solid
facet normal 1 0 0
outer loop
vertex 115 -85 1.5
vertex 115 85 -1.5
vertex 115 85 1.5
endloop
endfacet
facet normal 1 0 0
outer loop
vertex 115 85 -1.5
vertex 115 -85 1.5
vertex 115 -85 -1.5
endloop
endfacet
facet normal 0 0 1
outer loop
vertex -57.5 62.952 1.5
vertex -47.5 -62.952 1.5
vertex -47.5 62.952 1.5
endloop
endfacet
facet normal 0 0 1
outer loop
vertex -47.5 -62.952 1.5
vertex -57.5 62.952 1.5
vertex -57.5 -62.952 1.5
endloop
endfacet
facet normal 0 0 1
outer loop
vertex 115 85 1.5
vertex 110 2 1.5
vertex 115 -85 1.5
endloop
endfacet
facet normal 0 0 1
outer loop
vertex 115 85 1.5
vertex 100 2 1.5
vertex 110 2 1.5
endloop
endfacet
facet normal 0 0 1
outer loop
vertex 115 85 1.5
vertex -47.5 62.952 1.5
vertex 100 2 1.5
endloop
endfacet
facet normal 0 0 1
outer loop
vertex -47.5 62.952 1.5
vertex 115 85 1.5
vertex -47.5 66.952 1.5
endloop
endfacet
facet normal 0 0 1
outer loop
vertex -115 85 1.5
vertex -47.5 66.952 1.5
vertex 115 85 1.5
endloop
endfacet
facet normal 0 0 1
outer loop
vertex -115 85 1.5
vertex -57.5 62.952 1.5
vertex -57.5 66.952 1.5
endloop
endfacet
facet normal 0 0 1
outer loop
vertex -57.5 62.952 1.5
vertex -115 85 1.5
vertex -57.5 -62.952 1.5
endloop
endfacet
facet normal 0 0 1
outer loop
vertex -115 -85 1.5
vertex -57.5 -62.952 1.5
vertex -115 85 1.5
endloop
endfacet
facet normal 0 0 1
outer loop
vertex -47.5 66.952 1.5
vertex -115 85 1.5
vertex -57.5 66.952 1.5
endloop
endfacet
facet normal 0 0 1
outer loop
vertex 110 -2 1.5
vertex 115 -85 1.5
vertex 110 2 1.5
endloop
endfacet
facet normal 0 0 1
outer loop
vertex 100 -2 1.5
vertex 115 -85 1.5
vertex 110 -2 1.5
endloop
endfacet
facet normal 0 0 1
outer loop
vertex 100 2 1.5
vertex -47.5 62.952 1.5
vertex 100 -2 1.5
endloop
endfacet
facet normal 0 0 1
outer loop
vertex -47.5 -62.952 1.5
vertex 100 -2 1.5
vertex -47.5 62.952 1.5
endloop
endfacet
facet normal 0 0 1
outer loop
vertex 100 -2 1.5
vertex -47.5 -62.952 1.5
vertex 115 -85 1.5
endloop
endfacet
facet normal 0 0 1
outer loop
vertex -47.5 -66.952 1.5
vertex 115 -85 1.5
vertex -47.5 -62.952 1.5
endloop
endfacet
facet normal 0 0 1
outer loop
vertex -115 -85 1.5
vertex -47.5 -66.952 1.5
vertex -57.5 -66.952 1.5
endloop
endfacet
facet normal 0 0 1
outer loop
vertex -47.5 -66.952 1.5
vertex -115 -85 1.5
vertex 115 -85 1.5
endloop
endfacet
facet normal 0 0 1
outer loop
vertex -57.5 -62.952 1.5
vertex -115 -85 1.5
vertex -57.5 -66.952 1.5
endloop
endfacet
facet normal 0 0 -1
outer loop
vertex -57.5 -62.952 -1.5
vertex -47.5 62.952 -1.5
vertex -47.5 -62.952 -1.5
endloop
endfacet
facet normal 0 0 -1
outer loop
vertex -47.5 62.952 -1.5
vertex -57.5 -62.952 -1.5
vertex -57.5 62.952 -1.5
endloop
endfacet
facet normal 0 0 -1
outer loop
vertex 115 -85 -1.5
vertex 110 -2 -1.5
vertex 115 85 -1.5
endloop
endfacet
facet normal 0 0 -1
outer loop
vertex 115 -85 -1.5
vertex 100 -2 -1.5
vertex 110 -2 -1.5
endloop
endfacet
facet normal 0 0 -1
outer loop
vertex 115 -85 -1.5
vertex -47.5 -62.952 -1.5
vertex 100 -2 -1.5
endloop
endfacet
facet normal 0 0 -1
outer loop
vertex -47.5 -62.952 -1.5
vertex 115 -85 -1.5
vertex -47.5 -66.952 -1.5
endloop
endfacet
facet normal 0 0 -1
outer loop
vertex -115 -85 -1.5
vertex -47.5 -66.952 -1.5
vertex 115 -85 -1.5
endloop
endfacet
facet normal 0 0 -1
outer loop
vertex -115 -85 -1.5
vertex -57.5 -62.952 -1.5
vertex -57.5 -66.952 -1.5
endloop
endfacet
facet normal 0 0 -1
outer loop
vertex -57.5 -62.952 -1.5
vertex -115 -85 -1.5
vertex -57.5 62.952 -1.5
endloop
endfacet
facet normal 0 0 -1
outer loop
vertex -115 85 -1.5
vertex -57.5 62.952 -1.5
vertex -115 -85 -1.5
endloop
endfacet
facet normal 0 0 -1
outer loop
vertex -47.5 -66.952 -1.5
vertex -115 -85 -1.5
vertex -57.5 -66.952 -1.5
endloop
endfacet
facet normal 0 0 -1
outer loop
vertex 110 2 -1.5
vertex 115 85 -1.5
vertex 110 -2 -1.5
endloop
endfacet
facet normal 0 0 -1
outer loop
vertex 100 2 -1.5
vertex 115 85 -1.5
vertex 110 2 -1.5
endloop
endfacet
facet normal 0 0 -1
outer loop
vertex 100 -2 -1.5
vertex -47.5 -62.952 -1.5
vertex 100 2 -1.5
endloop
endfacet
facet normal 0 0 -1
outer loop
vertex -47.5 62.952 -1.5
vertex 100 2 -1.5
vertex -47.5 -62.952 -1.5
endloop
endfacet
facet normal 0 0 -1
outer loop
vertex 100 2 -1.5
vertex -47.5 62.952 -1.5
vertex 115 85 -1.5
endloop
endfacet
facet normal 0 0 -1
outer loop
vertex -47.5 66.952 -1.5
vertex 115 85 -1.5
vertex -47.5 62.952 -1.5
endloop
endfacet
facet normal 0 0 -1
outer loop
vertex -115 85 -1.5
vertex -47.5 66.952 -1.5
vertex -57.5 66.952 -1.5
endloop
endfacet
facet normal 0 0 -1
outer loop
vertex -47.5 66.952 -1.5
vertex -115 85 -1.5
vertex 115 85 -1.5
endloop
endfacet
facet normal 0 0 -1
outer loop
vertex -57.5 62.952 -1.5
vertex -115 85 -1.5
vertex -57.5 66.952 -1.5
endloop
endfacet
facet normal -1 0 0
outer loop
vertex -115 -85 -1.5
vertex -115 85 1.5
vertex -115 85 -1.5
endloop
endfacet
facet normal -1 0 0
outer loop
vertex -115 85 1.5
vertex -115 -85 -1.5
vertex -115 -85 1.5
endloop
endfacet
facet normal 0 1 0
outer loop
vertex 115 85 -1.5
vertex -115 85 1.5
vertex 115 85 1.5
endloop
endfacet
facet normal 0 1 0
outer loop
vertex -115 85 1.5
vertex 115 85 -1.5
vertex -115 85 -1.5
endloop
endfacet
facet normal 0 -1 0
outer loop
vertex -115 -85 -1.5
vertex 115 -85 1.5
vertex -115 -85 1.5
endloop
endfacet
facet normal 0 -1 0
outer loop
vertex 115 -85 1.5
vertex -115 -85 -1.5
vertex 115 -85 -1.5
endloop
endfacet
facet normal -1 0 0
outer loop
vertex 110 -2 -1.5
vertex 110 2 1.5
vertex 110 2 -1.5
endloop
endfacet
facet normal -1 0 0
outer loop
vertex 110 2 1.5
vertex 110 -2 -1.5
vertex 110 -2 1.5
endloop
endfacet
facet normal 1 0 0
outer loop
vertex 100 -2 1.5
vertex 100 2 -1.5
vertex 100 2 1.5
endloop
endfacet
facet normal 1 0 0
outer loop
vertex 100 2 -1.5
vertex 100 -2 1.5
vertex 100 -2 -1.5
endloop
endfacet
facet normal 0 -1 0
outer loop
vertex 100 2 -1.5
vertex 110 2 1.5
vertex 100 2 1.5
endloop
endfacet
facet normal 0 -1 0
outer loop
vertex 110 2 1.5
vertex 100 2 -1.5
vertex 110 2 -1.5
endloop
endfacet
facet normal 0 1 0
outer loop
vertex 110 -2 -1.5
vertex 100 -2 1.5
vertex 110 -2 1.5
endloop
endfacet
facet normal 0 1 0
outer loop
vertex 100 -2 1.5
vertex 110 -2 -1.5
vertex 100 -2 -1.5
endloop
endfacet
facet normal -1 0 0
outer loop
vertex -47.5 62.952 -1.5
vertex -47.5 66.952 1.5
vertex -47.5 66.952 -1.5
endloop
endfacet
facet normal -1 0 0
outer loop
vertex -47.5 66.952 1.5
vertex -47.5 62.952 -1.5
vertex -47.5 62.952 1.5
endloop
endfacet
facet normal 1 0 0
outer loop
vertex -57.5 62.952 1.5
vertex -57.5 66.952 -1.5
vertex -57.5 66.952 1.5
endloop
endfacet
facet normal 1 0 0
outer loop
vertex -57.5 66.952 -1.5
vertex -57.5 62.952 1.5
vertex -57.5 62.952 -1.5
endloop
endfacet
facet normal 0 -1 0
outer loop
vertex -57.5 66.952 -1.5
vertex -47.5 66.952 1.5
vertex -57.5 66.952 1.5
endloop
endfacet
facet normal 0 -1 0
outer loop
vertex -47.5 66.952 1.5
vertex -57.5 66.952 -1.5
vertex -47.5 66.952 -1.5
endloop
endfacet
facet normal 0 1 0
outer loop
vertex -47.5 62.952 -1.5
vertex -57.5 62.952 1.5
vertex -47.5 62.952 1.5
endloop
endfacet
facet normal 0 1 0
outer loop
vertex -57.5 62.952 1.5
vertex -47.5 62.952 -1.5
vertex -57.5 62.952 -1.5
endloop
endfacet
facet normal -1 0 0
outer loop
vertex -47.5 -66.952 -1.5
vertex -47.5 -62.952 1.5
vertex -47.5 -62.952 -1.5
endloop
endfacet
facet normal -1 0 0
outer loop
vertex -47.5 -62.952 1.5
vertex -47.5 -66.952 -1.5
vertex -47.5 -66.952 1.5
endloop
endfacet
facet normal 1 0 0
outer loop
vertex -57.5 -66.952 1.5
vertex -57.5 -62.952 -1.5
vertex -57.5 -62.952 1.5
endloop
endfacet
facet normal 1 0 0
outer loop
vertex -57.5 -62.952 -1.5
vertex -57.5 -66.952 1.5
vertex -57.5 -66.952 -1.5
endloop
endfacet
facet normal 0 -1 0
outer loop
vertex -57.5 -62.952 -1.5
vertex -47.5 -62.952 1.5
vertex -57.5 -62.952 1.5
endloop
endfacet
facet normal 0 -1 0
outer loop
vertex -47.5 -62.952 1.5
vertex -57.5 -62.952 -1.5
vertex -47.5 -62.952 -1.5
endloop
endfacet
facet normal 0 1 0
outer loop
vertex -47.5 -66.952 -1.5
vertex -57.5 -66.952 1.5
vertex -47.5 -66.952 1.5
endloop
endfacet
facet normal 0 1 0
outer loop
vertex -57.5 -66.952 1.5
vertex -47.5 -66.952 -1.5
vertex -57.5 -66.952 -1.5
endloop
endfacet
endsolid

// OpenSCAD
// ========================================
// a 230 x 170 x 3 mm plate with three 10 x 4 mm slots
// NeuroCAD canonical IR; dimensions are millimetres
// ========================================
$fn = 48;

difference() {
  cube(size=[230, 170, 3], center=true);
  translate([105, 0, 0]) {
    cube(size=[10, 4, 5], center=true);
  }
  translate([-52.5, 64.9519052838329, 0]) {
    cube(size=[10, 4, 5], center=true);
  }
  translate([-52.5, -64.9519052838329, 0]) {
    cube(size=[10, 4, 5], center=true);
  }
}
